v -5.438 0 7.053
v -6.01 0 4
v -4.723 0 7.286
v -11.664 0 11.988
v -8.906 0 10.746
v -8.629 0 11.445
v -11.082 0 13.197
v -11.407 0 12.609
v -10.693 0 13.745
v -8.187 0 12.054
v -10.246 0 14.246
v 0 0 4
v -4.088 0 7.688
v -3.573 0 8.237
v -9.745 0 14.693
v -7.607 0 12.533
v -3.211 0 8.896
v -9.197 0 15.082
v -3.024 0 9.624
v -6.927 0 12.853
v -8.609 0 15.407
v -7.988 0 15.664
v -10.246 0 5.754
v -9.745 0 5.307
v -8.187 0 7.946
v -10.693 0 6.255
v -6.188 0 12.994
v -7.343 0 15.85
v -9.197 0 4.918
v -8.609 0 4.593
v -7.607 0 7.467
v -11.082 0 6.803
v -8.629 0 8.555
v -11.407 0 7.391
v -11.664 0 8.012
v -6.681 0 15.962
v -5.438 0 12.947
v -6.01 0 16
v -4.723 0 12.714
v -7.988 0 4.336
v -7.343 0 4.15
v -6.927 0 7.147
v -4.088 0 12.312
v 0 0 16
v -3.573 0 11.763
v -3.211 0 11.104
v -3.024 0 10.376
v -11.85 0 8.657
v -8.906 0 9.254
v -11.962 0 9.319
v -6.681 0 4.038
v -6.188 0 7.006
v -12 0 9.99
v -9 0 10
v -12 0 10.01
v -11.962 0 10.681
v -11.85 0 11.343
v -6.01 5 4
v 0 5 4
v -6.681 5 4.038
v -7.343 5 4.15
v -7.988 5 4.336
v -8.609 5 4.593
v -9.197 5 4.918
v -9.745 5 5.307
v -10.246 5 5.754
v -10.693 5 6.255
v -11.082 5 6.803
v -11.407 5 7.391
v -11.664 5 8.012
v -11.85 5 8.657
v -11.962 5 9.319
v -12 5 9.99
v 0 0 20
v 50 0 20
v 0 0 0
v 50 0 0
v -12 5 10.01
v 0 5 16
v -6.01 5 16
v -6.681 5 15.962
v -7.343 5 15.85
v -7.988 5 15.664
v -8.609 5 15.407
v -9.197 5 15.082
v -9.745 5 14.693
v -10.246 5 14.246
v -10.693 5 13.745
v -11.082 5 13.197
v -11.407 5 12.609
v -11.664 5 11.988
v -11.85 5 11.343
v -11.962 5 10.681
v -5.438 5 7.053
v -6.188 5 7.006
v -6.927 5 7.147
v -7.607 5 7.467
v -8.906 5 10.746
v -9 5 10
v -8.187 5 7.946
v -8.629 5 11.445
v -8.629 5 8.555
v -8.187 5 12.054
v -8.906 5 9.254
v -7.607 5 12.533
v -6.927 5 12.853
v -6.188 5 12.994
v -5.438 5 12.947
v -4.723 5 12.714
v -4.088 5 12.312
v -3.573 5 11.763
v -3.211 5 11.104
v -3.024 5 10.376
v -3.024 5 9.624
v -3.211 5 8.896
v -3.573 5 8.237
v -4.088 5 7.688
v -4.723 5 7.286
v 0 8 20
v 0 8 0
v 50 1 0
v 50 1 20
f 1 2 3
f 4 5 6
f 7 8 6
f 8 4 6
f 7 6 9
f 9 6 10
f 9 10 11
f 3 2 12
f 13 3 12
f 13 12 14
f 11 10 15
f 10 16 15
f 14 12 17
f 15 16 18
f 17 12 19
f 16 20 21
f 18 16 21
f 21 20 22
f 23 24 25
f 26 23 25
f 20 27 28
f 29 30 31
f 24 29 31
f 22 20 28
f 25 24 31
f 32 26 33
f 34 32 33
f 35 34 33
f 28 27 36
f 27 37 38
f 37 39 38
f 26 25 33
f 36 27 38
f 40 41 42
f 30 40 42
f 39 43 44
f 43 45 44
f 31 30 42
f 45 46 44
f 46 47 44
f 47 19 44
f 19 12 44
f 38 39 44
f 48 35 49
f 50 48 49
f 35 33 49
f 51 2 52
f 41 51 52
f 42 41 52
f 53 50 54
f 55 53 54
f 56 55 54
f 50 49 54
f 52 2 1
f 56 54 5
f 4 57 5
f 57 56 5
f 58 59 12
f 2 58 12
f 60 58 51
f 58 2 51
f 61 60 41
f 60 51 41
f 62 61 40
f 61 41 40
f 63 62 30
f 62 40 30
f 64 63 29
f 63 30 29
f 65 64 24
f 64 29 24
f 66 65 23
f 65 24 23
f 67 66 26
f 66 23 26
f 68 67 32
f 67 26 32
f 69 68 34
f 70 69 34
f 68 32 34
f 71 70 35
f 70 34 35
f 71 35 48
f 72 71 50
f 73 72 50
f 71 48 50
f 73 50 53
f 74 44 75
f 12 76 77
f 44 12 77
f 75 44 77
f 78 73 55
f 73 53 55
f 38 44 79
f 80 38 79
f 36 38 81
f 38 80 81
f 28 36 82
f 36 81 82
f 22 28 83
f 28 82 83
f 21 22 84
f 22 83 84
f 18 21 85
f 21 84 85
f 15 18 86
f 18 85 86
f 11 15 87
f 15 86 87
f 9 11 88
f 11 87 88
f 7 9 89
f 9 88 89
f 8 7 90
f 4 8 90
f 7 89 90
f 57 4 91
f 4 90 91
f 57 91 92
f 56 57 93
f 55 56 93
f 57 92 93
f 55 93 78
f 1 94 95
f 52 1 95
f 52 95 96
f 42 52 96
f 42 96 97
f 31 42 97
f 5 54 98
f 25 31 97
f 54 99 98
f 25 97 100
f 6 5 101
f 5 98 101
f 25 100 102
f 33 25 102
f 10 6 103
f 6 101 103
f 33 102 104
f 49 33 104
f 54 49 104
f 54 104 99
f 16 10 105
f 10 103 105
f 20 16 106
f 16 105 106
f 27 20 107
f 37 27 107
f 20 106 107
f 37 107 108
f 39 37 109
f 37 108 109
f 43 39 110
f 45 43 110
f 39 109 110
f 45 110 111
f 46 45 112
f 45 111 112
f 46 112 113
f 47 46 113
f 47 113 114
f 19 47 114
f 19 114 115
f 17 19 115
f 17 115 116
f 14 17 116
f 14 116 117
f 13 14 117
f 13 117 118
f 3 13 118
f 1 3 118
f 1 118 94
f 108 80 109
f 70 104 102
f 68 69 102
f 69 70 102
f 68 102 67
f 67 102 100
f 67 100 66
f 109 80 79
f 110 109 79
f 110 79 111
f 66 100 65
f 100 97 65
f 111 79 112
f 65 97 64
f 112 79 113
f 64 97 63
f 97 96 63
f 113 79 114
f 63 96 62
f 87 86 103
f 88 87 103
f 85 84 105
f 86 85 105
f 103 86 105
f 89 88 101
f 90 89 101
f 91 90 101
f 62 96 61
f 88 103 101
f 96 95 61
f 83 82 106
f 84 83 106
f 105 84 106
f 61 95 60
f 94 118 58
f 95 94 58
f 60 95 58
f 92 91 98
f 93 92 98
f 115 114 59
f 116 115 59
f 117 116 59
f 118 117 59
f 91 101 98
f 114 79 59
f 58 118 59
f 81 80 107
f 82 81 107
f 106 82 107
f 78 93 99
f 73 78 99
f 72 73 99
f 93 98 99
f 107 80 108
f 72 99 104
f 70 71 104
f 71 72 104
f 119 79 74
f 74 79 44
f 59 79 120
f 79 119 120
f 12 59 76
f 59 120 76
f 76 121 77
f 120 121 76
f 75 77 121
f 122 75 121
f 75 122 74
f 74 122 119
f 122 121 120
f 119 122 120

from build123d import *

# Parameters (mm, degrees)
PAD_DEPTH    = 20
SKETCH001_W  = 5
SKETCH001_H  = 12
PAD001_DEPTH = 12
FILLET_R     = 5.99
SKETCH002_R  = 3
POCKET_DEPTH = 5


with BuildPart() as part:
    # Sketch → Pad (new body)
    with BuildSketch(Plane.XY):
        Polygon((0, 0), (50, 0), (50, 1), (0, 8), align=None)
    extrude(amount=PAD_DEPTH)

    # Sketch001 → Pad001 (new body)
    with BuildSketch(Plane(origin=(0, 0, 0), x_dir=(0, -1, 0), z_dir=(-1, 0, 0))):
        with Locations((-2.5, 10)):
            Rectangle(SKETCH001_W, SKETCH001_H)
    extrude(amount=PAD001_DEPTH)

    # Fillet
    fillet_edges = [part.edges().sort_by_distance(p)[0] for p in [
        (-12, 2.5, 16),
        (-12, 2.5, 4),
    ]]
    fillet(fillet_edges, radius=FILLET_R)

    # Sketch002 → Pocket (cut)
    with BuildSketch(Plane(origin=(0, 5, 0), x_dir=(-1, 0, 0), z_dir=(0, 1, 0))):
        with Locations((6, 10)):
            Circle(SKETCH002_R)
    extrude(amount=-POCKET_DEPTH, mode=Mode.SUBTRACT)


solid = part.part
